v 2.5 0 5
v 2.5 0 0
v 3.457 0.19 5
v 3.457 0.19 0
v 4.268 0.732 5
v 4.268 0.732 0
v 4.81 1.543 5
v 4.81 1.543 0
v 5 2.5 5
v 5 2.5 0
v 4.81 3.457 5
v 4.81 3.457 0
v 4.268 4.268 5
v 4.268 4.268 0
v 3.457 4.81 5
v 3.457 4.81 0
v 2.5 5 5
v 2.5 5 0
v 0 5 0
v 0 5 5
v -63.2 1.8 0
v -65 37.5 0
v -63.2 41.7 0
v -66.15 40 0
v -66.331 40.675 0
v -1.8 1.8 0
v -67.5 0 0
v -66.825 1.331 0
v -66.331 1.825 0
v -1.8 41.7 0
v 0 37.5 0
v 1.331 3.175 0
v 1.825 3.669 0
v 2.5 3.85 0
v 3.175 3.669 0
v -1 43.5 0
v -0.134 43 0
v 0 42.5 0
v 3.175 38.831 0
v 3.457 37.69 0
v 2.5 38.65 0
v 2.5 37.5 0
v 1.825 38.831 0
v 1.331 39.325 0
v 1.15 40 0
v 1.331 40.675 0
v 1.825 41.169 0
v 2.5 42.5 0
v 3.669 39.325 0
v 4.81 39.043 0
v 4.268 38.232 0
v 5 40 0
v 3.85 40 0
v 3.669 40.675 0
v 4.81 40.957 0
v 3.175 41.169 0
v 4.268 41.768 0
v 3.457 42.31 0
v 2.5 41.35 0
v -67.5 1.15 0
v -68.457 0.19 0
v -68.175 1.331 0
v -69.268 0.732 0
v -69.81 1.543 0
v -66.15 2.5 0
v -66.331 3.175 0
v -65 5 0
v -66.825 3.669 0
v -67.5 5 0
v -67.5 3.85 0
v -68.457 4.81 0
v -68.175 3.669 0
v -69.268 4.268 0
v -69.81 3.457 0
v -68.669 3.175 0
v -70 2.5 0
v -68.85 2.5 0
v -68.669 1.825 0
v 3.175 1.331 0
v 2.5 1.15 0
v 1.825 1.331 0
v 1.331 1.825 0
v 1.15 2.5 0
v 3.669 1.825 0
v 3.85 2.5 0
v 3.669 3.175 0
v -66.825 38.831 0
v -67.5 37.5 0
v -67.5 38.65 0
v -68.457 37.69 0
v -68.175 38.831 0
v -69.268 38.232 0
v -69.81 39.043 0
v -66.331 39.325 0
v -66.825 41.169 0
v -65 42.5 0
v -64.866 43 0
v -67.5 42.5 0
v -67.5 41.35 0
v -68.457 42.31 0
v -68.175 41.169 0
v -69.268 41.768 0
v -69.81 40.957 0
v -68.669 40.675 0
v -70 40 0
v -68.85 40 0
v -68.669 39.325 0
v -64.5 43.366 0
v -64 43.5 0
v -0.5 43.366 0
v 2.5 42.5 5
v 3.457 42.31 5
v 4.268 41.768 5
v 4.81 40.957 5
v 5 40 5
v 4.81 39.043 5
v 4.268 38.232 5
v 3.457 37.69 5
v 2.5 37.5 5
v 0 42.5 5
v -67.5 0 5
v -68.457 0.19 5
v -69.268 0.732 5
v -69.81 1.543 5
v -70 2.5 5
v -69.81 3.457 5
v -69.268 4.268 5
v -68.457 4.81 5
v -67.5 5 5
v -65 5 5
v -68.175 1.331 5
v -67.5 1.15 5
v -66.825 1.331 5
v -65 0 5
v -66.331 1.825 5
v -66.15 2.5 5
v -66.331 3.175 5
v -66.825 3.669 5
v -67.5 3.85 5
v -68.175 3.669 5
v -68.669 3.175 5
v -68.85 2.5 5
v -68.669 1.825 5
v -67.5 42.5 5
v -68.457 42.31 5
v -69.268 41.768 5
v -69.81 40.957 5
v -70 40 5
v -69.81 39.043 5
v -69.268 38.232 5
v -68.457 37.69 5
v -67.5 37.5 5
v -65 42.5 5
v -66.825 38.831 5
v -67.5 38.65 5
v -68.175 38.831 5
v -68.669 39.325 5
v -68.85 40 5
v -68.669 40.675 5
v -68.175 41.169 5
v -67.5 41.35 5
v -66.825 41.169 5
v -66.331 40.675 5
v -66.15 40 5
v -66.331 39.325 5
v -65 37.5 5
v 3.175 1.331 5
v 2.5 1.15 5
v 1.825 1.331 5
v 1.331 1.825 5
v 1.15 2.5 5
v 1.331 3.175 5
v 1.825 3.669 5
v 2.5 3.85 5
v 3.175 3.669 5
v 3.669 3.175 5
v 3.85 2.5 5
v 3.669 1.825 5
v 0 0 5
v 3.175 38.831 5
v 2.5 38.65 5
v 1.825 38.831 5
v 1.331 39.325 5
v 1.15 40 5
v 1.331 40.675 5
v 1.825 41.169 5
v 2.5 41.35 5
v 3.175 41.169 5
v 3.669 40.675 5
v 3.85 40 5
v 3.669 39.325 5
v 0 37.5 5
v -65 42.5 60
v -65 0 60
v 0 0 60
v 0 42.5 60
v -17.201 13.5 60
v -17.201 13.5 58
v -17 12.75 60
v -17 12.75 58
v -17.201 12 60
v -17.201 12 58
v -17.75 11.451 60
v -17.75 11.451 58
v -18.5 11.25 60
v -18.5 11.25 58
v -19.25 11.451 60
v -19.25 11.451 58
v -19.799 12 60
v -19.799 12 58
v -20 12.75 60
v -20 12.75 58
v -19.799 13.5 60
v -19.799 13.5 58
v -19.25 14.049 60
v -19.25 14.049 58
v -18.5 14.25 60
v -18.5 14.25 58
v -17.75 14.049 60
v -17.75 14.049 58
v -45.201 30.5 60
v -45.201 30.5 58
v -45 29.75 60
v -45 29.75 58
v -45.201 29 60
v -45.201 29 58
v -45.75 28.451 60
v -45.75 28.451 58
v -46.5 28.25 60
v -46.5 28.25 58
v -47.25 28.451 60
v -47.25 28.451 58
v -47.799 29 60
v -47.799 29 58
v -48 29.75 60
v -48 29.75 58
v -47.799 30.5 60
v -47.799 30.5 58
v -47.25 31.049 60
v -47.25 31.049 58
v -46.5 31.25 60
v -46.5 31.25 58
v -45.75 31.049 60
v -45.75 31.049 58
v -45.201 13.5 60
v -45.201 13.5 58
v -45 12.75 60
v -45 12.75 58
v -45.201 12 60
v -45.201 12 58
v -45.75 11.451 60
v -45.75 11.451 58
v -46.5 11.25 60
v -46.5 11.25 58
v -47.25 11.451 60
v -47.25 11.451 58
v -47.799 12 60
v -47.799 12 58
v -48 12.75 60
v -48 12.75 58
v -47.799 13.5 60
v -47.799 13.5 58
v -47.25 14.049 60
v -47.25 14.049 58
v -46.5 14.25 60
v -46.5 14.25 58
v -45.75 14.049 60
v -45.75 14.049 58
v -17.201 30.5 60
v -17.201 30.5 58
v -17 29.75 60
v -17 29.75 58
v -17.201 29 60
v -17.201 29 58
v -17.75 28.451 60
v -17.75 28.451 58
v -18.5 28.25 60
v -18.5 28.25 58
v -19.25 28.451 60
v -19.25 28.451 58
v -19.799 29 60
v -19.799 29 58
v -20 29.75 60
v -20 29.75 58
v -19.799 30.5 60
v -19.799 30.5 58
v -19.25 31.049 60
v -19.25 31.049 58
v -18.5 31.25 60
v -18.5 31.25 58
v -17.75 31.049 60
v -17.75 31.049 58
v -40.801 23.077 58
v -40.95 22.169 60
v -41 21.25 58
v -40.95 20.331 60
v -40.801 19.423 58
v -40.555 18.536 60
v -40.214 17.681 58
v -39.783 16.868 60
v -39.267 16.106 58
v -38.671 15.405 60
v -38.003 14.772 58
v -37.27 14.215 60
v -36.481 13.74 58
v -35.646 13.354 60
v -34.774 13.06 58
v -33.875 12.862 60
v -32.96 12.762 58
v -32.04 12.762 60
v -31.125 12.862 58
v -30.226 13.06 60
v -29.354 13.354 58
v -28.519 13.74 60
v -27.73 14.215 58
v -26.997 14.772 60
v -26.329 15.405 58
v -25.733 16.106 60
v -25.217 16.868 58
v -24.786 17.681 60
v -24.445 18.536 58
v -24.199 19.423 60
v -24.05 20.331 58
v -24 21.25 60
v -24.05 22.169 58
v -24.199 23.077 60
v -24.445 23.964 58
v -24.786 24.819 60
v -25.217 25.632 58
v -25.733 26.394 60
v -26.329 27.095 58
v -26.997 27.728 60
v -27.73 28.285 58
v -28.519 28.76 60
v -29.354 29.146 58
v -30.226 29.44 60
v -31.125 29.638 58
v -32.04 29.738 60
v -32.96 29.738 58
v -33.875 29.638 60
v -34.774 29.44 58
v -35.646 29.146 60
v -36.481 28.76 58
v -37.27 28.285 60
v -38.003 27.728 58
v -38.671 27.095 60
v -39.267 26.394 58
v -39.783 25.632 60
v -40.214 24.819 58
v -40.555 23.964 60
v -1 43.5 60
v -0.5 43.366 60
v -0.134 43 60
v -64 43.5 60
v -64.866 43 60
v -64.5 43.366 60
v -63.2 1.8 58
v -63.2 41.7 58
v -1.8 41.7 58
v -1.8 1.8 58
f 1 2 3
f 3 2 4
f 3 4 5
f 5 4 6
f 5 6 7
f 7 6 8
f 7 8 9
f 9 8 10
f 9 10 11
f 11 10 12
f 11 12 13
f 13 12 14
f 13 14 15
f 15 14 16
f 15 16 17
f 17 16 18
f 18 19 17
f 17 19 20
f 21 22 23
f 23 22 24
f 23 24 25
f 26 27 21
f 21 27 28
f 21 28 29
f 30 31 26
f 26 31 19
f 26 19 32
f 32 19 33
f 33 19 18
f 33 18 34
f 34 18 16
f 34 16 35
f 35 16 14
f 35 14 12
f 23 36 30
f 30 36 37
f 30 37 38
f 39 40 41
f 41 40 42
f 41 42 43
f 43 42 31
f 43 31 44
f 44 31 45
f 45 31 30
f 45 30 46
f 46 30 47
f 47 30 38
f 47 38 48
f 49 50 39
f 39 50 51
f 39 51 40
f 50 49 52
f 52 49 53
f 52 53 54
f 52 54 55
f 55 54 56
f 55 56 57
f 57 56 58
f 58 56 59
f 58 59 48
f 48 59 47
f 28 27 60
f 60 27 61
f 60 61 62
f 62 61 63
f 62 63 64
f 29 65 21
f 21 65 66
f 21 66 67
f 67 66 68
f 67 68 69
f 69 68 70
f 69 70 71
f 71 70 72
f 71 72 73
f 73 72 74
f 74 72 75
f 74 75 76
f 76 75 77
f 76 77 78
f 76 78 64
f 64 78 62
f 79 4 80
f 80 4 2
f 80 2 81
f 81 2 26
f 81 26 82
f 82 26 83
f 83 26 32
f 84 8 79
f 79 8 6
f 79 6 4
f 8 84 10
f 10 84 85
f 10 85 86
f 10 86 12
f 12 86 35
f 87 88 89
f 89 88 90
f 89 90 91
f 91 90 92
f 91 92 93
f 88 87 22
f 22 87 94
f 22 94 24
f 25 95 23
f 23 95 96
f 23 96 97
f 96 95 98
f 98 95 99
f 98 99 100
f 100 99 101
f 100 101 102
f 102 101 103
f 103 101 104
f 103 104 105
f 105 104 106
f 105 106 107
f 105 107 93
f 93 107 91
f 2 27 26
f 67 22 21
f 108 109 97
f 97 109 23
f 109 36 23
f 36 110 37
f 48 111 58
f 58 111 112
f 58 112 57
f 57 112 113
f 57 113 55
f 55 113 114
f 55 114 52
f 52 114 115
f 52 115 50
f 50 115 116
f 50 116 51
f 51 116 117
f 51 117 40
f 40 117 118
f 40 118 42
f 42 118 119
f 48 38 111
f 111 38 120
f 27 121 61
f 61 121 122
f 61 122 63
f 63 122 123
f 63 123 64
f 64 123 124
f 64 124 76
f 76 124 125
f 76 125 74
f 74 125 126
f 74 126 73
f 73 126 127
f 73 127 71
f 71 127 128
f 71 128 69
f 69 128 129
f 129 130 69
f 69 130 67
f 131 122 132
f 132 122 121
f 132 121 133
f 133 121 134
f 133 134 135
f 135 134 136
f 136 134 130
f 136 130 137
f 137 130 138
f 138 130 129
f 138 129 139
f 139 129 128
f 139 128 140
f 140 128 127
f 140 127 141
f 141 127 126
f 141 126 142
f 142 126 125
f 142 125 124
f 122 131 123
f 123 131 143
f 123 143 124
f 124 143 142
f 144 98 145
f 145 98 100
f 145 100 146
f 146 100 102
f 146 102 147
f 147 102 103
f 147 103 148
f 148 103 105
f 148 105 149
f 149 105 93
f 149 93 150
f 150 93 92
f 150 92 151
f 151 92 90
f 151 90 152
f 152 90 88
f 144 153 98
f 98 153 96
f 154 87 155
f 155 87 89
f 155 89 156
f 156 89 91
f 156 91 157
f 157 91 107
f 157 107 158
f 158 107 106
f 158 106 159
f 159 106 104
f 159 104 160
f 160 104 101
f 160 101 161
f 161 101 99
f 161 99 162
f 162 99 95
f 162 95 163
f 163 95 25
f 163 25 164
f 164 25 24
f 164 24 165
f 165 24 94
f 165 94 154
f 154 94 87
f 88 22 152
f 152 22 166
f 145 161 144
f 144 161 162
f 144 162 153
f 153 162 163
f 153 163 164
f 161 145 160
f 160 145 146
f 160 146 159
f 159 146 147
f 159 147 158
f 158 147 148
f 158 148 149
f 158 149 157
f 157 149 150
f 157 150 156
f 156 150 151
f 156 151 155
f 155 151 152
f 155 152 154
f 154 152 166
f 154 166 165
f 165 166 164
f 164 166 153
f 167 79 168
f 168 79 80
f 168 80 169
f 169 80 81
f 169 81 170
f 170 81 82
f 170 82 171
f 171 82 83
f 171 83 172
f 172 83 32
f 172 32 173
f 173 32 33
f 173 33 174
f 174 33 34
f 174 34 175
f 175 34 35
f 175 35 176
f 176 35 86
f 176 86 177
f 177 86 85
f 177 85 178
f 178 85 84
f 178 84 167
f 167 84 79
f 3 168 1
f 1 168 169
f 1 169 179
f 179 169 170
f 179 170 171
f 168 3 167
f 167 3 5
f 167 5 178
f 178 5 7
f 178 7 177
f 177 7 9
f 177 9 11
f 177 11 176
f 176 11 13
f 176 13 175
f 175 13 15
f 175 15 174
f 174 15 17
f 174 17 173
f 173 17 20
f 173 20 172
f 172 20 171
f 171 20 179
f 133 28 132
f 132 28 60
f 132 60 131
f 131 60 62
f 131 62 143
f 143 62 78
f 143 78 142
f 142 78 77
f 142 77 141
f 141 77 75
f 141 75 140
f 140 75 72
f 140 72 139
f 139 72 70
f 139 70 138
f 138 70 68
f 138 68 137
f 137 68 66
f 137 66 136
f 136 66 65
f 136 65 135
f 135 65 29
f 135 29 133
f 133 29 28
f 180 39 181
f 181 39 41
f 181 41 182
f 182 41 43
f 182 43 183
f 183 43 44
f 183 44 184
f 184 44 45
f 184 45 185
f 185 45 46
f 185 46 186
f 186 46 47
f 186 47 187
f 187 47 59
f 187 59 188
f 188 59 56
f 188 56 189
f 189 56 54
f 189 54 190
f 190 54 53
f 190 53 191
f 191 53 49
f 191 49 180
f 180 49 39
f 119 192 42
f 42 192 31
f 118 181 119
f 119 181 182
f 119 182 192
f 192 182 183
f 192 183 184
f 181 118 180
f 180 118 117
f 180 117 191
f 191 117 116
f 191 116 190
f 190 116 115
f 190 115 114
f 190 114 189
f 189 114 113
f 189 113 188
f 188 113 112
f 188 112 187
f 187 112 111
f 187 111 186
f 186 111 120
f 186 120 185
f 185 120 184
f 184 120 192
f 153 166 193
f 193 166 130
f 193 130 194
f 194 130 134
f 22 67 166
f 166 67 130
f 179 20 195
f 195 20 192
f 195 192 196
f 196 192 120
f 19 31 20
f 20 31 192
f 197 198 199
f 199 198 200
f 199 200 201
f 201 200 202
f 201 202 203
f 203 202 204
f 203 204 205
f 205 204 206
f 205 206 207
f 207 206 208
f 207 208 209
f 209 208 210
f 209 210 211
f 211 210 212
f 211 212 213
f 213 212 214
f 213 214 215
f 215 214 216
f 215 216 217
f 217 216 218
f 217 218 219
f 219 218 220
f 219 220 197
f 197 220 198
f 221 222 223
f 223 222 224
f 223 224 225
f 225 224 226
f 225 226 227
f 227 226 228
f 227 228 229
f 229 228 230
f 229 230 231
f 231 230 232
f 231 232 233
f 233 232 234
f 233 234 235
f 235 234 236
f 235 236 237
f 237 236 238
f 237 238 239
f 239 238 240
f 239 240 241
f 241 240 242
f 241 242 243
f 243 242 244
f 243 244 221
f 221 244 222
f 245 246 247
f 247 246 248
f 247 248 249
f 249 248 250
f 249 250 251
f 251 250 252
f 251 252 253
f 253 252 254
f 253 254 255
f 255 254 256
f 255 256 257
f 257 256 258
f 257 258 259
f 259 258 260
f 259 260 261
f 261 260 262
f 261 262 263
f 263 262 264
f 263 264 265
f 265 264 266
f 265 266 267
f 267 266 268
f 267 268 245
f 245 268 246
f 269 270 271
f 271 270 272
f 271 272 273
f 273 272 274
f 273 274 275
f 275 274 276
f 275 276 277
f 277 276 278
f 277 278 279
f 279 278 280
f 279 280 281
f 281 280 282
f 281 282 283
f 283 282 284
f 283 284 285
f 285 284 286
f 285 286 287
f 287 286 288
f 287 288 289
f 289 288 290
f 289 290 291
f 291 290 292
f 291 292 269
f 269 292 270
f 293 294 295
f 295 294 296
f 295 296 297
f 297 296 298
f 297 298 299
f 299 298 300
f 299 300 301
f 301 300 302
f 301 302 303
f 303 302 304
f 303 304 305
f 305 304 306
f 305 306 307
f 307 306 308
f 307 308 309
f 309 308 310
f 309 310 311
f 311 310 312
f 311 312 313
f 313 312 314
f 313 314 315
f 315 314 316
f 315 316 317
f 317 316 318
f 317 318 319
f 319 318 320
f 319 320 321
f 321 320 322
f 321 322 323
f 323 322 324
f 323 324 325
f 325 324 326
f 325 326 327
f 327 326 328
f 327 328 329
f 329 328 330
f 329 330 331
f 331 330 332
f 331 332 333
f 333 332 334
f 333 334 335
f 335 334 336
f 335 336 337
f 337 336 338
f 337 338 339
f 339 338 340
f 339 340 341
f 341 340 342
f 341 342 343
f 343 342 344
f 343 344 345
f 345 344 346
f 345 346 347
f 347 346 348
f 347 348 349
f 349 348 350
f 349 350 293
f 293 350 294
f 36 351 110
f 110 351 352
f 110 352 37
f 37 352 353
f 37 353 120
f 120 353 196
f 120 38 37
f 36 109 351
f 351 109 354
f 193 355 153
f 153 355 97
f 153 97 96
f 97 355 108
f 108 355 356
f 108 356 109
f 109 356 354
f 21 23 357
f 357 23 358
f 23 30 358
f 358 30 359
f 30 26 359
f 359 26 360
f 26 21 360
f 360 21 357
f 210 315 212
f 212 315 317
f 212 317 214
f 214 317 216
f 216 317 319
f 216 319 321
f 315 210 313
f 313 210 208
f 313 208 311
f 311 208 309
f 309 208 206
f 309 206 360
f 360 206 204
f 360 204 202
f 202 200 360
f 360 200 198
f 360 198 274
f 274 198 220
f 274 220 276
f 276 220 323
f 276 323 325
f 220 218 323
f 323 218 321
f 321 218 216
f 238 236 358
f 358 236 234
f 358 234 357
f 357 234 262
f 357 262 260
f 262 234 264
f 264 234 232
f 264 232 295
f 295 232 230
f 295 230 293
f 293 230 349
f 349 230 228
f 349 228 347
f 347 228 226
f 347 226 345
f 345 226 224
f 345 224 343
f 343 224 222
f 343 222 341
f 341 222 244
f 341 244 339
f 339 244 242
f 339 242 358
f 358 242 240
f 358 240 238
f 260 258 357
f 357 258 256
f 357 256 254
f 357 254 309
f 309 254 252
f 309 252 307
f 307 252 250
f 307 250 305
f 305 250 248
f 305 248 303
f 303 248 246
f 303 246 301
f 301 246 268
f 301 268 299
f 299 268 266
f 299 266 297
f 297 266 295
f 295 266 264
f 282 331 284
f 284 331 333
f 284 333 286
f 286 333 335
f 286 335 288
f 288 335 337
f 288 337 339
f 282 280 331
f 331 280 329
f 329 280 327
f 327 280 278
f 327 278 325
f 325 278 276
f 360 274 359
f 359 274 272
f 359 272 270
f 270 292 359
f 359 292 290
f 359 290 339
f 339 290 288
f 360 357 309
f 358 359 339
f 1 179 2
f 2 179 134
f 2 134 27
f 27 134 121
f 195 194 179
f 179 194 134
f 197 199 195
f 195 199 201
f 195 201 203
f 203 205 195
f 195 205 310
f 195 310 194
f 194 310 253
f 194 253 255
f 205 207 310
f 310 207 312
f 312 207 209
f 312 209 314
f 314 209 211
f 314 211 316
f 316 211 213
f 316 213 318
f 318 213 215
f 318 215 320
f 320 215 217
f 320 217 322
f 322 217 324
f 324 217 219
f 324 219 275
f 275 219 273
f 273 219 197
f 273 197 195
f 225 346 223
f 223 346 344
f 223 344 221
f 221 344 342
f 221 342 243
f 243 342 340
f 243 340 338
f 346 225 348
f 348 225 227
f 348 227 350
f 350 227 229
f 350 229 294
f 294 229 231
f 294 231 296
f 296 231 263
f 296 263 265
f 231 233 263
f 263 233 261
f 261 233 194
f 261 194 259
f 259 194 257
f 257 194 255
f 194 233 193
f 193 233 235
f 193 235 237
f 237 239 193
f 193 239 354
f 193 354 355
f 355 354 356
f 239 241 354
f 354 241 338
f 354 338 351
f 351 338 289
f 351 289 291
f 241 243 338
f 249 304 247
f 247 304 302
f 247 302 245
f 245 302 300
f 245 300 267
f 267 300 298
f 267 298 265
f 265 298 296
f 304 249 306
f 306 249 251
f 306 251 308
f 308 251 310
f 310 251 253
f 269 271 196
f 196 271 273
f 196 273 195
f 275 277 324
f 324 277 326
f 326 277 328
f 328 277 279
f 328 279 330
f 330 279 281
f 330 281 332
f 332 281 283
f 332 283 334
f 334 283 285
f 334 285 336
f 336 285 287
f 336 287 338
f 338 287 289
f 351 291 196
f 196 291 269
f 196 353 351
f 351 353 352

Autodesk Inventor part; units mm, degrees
ref_plane "YZ Plane" through (0, 0, 0) normal (1, 0, 0) x (0, 1, 0)
ref_plane "XZ Plane" through (0, 0, 0) normal (0, 1, 0) x (-1, 0, 0)
sketch "Sketch1" plane through (0, 0, 0) normal (0, 0, 1) x (1, 0, 0)
  line L0 (0, 0) -> (-65, 0)
  line L1 (-65, 0) -> (-65, 43.5)
  line L2 (-65, 43.5) -> (0, 43.5)
  line L3 (0, 43.5) -> (0, 0)
  dimension "d0" = 43.5
  dimension "d1" = 65
extrude "Extrusion1" add sketch "Sketch1" along normal blind 60
sketch "Sketch2" plane through (0, 0, 0) normal (0, 0, -1) x (-1, 0, 0)
  line L0 (1.8, 41.7) -> (63.2, 41.7)
  line L1 (63.2, 41.7) -> (63.2, 1.8)
  line L2 (63.2, 1.8) -> (1.8, 1.8)
  line L3 (1.8, 1.8) -> (1.8, 41.7)
  line L4 (65, 43.5) -> (65, 0) projected
  line L5 (0, 43.5) -> (65, 43.5) projected
  line L6 (0, 0) -> (0, 43.5) projected
  line L7 (65, 0) -> (0, 0) projected
  point P0 (65, 21.75)
  dimension "d4" = 1.8
  dimension "d5" = 1.8
  dimension "d6" = 1.8
  dimension "d7" = 1.8
extrude "Extrusion2" cut sketch "Sketch2" against normal blind 58 contours L0 L1 L2 L3
fillet "Fillet1" radius 1 2 edges at (-65, 43.5, 30) (0, 43.5, 30)
sketch "Sketch5" plane through (0, 0, 60) normal (0, 0, 1) x (1, 0, 0)
  circle A0 centre (-32.5, 21.25) radius 8.5
  line L0 (-1, 43.5) -> (-64, 43.5) projected
  line L1 (-65, 42.5) -> (-65, 0) projected
  point P0 (0, 0)
  point P1 (-32.5, 43.5)
  point P2 (-65, 21.25)
  dimension "d41" = 17
extrude "Extrusion5" cut sketch "Sketch5" against normal blind 10
sketch "Sketch6" plane through (0, 0, 60) normal (0, 0, 1) x (1, 0, 0)
  line L0 (-47.5, 33.25) -> (-17.5, 33.25)
  line L1 (-17.5, 33.25) -> (-17.5, 9.25)
  line L2 (-17.5, 9.25) -> (-47.5, 9.25)
  line L3 (-47.5, 9.25) -> (-47.5, 33.25)
  line L4 (-1, 43.5) -> (-64, 43.5) projected
  line L5 (0, 0) -> (0, 42.5) projected
  circle A0 centre (-44.5, 32.25) radius 1.5
  circle A1 centre (-46.5, 29.75) radius 1.5
  line L6 (-32.5, 33.25) -> (-32.5, 9.25) construction
  line L7 (-47.5, 21.25) -> (-17.5, 21.25) construction
  line L8 (-17.5, 33.25) -> (-47.5, 33.25)
  line L9 (-17.5, 9.25) -> (-17.5, 33.25)
  circle A2 centre (-20.5, 32.25) radius 1.5
  circle A3 centre (-18.5, 29.75) radius 1.5
  circle A4 centre (-44.5, 10.25) radius 1.5
  circle A5 centre (-46.5, 12.75) radius 1.5
  circle A6 centre (-18.5, 12.75) radius 1.5
  circle A7 centre (-20.5, 10.25) radius 1.5
  point P0 (-32.5, 43.5)
  point P1 (0, 21.25)
  point P2 (-47.5, 9.25)
  point P3 (-17.5, 9.25)
  point P4 (-17.5, 9.25)
  point P5 (-47.5, 9.25)
  dimension "d44" = 30
  dimension "d45" = 24
  dimension "d46" = 3
  dimension "d47" = 3
  dimension "d49" = 1
  dimension "d50" = 1
  dimension "d53" = 8.5
  dimension "d54" = 12
extrude "Extrusion6" cut sketch "Sketch6" against normal up to surface (2 mm away) contours A1 L3 | L3 A1 | A5 L3 | L3 A5 | A3 L1 | L1 A3 | A6 L1 | L1 A6
sketch "Sketch7" plane through (0, 0, 60) normal (0, 0, 1) x (1, 0, 0)
  line L0 (-65, 42.5) -> (-65, 0) projected
  line L1 (-65, 42.5) -> (-70, 42.5)
  line L2 (-70, 42.5) -> (-70, 37.5)
  line L3 (-70, 37.5) -> (-65, 37.5)
  line L4 (-65, 37.5) -> (-65, 42.5)
  line L5 (0, 0) -> (0, 42.5) projected
  line L6 (0, 42.5) -> (5, 42.5)
  line L7 (5, 42.5) -> (5, 37.5)
  line L8 (5, 37.5) -> (0, 37.5)
  line L9 (0, 37.5) -> (0, 42.5)
  line L10 (-65, 0) -> (0, 0) projected
  line L11 (0, 0) -> (5, 0)
  line L12 (5, 0) -> (5, 5)
  line L13 (5, 5) -> (0, 5)
  line L14 (0, 5) -> (0, 0)
  line L15 (-65, 0) -> (-70, 0)
  line L16 (-70, 0) -> (-70, 5)
  line L17 (-70, 5) -> (-65, 5)
  line L18 (-65, 5) -> (-65, 0)
  circle A0 centre (-67.5, 40) radius 1.35
  circle A1 centre (-67.5, 2.5) radius 1.35
  circle A2 centre (2.5, 2.5) radius 1.35
  circle A3 centre (2.5, 40) radius 1.35
  dimension "d57" = 5
  dimension "d58" = 5
  dimension "d59" = 5
  dimension "d60" = 5
  dimension "d61" = 5
  dimension "d62" = 5
  dimension "d63" = 5
  dimension "d64" = 5
  dimension "d65" = 2.7
  dimension "d66" = 2.7
  dimension "d67" = 2.7
  dimension "d68" = 2.7
  dimension "d69" = 2.5
  dimension "d70" = 2.5
  dimension "d71" = 2.5
  dimension "d72" = 2.5
  dimension "d73" = 2.5
  dimension "d74" = 2.5
  dimension "d75" = 2.5
  dimension "d76" = 2.5
ref_plane "Work Plane1" through (-65, 43.5, 0) normal (0, 0, 1) x (0, -1, 0)
sketch "Sketch8" plane through (-65, 43.5, 0) normal (0, 0, 1) x (0, -1, 0)
  line L0 (6, 70) -> (6, 65) projected
  circle A0 centre (3.5, 67.5) radius 1.35 projected
  line L1 (1, 70) -> (6, 70) projected
  line L2 (1, 65) -> (1, 70) projected
  line L3 (43.5, 65) -> (43.5, 70) projected
  circle A1 centre (41, 67.5) radius 1.35 projected
  line L4 (43.5, 70) -> (38.5, 70) projected
  line L5 (38.5, 70) -> (38.5, 65) projected
  line L6 (43.5, 0) -> (43.5, -5) projected
  circle A2 centre (41, -2.5) radius 1.35 projected
  line L7 (43.5, -5) -> (38.5, -5) projected
  line L8 (38.5, -5) -> (38.5, 0) projected
  line L9 (6, -5) -> (6, 0) projected
  circle A3 centre (3.5, -2.5) radius 1.35 projected
  line L10 (1, -5) -> (6, -5) projected
  line L11 (1, 0) -> (1, -5) projected
  circle A4 centre (3.5, 67.5) radius 1.35
  circle A5 centre (41, 67.5) radius 1.35
  circle A6 centre (41, -2.5) radius 1.35
  circle A7 centre (3.5, -2.5) radius 1.35
  line L12 (1, 0) -> (43.5, 0) projected
  line L13 (1, 0) -> (6, 0)
  line L14 (6, 0) -> (6, -5)
  line L15 (6, -5) -> (1, -5)
  line L16 (1, -5) -> (1, 0)
  line L17 (38.5, 0) -> (43.5, 0)
  line L18 (43.5, 0) -> (43.5, -5)
  line L19 (43.5, -5) -> (38.5, -5)
  line L20 (38.5, -5) -> (38.5, 0)
  line L21 (38.5, 65) -> (43.5, 65)
  line L22 (43.5, 65) -> (43.5, 70)
  line L23 (43.5, 70) -> (38.5, 70)
  line L24 (38.5, 70) -> (38.5, 65)
  line L25 (43.5, 65) -> (1, 65) projected
  line L26 (1, 65) -> (6, 65)
  line L27 (6, 65) -> (6, 70)
  line L28 (6, 70) -> (1, 70)
  line L29 (1, 70) -> (1, 65)
extrude "Extrusion7" add sketch "Sketch8" along normal blind 5
full round fillet "Full Round Fillet5" first side at (-66.6667, 42.5, 1.6667) centre faces at (-70, 40.8333, 1.6667) second side at (-68.3333, 37.5, 1.6667)
full round fillet "Full Round Fillet6" first side at (-43.3333, 0, 23.3333) centre faces at (-70, 3.3333, 1.6667) second side at (-66.6667, 5, 1.6667)
full round fillet "Full Round Fillet7" first side at (1.6667, 42.5, 3.3333) centre faces at (5, 39.1667, 1.6667) second side at (1.6667, 37.5, 1.6667)
full round fillet "Full Round Fillet8" first side at (-43.3333, 0, 23.3333) centre faces at (5, 1.6667, 1.6667) second side at (3.3333, 5, 1.6667)
properties part number "CAMCOVER"
